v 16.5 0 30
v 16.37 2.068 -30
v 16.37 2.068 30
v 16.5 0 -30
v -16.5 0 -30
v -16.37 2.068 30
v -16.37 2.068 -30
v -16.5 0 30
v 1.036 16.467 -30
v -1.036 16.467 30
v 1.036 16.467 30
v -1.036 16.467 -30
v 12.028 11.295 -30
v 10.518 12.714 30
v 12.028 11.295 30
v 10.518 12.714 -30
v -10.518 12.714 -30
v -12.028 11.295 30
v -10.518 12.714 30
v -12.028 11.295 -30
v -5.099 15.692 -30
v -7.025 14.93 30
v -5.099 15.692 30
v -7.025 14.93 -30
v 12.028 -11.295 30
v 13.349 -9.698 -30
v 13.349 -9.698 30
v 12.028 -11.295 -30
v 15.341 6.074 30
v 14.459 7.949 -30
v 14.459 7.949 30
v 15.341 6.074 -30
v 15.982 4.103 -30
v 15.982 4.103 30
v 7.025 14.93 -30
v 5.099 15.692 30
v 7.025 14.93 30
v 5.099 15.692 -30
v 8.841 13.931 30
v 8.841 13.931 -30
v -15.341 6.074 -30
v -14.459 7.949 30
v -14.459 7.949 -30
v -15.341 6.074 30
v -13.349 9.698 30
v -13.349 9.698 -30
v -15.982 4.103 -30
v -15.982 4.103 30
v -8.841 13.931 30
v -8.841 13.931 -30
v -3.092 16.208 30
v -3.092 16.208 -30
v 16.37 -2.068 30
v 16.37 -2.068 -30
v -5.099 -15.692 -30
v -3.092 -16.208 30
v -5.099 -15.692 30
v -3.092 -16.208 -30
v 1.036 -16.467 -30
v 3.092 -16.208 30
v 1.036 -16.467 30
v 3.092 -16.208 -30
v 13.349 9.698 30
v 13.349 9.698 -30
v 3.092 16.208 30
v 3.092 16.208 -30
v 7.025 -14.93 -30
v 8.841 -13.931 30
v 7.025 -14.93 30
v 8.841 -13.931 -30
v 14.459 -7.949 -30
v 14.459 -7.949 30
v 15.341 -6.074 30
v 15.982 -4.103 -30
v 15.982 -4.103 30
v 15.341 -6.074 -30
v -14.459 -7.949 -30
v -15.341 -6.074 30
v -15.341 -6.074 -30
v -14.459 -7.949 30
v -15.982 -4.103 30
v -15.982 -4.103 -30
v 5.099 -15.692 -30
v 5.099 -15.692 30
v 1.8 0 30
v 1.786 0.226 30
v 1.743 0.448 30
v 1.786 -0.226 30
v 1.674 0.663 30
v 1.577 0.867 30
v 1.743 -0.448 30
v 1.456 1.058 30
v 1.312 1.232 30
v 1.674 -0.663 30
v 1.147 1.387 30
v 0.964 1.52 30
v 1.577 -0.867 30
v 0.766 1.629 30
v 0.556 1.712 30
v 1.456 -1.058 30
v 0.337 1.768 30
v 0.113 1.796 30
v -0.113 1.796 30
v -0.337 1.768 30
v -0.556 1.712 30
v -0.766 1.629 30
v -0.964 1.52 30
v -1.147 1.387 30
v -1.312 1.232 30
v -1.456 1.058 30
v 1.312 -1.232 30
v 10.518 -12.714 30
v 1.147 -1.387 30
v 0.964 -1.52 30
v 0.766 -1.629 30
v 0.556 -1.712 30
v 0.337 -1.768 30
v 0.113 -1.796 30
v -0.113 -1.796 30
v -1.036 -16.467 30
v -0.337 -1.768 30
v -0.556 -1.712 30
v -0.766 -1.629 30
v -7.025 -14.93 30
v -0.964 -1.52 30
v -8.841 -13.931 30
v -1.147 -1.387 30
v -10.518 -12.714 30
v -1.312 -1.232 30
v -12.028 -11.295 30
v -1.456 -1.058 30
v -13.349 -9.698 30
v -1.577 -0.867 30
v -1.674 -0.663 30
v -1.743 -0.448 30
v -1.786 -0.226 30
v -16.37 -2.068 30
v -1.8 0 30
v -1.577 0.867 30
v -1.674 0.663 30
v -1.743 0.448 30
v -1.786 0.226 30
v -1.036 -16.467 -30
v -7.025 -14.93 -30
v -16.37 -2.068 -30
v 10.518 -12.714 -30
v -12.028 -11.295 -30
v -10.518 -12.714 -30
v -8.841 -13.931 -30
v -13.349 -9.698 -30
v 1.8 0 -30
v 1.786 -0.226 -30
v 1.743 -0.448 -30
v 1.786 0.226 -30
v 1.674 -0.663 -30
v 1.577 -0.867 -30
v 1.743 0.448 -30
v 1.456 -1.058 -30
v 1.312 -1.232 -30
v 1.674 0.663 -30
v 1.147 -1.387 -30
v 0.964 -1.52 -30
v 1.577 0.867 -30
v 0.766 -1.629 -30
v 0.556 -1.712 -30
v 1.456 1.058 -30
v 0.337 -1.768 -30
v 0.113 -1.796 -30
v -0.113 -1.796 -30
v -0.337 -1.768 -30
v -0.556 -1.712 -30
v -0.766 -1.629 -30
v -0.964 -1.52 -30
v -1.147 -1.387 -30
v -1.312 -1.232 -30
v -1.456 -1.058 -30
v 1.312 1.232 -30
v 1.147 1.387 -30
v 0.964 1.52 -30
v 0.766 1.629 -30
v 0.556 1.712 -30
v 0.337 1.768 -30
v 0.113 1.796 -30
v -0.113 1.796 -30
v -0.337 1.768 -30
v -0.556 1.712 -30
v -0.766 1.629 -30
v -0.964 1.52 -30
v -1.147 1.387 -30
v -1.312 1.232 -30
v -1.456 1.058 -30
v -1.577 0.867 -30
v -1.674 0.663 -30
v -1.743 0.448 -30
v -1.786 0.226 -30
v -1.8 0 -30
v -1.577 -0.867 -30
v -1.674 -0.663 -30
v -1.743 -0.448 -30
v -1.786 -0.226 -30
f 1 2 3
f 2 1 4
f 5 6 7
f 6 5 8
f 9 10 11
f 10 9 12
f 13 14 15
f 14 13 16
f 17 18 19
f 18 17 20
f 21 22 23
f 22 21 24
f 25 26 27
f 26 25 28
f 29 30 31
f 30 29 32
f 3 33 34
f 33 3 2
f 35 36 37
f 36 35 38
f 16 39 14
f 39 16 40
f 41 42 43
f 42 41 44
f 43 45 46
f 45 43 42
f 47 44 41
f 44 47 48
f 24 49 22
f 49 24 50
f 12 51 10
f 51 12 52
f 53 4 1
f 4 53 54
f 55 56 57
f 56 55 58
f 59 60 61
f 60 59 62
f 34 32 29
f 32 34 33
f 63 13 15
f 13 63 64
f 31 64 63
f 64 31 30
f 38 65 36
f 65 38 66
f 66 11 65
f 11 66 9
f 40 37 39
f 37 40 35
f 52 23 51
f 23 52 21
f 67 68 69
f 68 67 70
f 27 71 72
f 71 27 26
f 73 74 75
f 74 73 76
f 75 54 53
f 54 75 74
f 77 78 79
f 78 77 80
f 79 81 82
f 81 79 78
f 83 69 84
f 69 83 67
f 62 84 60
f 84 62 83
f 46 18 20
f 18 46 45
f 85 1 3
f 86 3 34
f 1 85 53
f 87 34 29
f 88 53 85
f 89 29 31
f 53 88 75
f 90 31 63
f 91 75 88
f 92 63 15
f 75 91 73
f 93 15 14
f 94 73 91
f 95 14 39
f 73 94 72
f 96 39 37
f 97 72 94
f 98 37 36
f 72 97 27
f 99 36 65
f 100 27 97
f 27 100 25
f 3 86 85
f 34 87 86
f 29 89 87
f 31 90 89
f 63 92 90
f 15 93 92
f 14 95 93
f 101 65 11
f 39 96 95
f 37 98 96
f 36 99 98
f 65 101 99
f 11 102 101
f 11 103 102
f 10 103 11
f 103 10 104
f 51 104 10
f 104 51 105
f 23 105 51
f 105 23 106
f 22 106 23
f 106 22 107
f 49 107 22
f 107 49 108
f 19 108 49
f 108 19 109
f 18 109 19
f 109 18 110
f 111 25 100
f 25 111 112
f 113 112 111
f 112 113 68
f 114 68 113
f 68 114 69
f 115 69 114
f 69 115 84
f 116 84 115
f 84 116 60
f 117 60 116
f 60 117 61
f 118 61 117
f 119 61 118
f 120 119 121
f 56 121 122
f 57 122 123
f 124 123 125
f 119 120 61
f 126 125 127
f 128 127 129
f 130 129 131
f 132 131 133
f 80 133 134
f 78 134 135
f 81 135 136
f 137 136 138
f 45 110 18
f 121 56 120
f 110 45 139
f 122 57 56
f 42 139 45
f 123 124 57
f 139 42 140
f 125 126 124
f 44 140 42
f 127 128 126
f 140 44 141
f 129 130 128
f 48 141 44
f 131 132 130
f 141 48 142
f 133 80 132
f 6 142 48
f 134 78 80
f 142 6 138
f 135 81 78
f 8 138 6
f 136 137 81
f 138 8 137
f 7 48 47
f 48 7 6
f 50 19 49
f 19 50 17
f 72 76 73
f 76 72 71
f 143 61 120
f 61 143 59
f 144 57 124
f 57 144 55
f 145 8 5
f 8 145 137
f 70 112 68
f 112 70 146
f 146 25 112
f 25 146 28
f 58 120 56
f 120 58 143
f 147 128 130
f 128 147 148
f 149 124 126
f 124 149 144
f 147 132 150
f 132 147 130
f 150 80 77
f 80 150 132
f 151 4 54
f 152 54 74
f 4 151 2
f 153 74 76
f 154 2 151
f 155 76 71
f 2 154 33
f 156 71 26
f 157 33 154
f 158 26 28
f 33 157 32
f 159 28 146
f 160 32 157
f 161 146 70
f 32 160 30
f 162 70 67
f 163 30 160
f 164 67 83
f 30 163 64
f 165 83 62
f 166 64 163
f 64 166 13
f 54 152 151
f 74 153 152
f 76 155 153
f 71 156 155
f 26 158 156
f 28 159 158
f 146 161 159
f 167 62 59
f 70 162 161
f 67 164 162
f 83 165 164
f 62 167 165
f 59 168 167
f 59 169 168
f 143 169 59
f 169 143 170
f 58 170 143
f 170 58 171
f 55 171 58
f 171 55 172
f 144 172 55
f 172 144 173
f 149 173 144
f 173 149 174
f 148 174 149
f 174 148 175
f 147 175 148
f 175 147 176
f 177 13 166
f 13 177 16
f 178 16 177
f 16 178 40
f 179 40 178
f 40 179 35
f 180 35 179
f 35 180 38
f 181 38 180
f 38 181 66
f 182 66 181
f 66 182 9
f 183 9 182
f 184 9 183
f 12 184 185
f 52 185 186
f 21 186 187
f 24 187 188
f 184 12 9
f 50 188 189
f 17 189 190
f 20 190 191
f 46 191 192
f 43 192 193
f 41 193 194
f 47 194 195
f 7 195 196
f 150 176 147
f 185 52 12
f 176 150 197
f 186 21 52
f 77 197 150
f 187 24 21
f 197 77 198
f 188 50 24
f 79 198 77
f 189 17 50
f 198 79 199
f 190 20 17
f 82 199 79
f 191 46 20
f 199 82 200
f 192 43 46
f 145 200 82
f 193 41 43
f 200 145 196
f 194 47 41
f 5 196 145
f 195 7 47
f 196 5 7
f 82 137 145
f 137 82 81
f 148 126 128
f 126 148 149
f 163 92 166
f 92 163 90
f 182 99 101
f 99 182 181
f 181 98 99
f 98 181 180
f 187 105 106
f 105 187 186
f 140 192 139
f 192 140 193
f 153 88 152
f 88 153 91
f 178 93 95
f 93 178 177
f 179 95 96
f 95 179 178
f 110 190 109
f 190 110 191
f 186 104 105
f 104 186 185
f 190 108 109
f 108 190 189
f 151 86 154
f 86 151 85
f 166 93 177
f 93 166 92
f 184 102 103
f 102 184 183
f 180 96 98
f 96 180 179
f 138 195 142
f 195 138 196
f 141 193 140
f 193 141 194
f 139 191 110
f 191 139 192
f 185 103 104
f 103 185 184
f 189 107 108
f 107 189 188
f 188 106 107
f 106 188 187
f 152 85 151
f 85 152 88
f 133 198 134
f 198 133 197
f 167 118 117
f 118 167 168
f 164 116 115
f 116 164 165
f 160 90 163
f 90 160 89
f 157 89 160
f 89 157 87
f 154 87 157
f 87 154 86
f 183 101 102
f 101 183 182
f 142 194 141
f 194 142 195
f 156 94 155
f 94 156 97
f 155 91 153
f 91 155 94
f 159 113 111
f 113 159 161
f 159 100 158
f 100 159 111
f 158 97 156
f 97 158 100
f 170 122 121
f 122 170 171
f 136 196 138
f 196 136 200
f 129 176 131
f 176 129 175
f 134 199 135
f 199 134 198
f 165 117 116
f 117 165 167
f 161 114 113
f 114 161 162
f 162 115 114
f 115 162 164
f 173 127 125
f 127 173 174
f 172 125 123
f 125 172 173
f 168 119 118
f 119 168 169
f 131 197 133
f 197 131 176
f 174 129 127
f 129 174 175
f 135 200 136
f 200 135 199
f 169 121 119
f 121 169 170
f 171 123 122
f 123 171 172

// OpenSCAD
$fn = 50;


difference() {
	union() {
		translate(v = [0, 0, -30.0000000000]) {
			cylinder(h = 60, r = 16.5000000000);
		}
	}
	union() {
		translate(v = [0, 0, -100.0000000000]) {
			cylinder(h = 200, r = 1.8000000000);
		}
	}
}
